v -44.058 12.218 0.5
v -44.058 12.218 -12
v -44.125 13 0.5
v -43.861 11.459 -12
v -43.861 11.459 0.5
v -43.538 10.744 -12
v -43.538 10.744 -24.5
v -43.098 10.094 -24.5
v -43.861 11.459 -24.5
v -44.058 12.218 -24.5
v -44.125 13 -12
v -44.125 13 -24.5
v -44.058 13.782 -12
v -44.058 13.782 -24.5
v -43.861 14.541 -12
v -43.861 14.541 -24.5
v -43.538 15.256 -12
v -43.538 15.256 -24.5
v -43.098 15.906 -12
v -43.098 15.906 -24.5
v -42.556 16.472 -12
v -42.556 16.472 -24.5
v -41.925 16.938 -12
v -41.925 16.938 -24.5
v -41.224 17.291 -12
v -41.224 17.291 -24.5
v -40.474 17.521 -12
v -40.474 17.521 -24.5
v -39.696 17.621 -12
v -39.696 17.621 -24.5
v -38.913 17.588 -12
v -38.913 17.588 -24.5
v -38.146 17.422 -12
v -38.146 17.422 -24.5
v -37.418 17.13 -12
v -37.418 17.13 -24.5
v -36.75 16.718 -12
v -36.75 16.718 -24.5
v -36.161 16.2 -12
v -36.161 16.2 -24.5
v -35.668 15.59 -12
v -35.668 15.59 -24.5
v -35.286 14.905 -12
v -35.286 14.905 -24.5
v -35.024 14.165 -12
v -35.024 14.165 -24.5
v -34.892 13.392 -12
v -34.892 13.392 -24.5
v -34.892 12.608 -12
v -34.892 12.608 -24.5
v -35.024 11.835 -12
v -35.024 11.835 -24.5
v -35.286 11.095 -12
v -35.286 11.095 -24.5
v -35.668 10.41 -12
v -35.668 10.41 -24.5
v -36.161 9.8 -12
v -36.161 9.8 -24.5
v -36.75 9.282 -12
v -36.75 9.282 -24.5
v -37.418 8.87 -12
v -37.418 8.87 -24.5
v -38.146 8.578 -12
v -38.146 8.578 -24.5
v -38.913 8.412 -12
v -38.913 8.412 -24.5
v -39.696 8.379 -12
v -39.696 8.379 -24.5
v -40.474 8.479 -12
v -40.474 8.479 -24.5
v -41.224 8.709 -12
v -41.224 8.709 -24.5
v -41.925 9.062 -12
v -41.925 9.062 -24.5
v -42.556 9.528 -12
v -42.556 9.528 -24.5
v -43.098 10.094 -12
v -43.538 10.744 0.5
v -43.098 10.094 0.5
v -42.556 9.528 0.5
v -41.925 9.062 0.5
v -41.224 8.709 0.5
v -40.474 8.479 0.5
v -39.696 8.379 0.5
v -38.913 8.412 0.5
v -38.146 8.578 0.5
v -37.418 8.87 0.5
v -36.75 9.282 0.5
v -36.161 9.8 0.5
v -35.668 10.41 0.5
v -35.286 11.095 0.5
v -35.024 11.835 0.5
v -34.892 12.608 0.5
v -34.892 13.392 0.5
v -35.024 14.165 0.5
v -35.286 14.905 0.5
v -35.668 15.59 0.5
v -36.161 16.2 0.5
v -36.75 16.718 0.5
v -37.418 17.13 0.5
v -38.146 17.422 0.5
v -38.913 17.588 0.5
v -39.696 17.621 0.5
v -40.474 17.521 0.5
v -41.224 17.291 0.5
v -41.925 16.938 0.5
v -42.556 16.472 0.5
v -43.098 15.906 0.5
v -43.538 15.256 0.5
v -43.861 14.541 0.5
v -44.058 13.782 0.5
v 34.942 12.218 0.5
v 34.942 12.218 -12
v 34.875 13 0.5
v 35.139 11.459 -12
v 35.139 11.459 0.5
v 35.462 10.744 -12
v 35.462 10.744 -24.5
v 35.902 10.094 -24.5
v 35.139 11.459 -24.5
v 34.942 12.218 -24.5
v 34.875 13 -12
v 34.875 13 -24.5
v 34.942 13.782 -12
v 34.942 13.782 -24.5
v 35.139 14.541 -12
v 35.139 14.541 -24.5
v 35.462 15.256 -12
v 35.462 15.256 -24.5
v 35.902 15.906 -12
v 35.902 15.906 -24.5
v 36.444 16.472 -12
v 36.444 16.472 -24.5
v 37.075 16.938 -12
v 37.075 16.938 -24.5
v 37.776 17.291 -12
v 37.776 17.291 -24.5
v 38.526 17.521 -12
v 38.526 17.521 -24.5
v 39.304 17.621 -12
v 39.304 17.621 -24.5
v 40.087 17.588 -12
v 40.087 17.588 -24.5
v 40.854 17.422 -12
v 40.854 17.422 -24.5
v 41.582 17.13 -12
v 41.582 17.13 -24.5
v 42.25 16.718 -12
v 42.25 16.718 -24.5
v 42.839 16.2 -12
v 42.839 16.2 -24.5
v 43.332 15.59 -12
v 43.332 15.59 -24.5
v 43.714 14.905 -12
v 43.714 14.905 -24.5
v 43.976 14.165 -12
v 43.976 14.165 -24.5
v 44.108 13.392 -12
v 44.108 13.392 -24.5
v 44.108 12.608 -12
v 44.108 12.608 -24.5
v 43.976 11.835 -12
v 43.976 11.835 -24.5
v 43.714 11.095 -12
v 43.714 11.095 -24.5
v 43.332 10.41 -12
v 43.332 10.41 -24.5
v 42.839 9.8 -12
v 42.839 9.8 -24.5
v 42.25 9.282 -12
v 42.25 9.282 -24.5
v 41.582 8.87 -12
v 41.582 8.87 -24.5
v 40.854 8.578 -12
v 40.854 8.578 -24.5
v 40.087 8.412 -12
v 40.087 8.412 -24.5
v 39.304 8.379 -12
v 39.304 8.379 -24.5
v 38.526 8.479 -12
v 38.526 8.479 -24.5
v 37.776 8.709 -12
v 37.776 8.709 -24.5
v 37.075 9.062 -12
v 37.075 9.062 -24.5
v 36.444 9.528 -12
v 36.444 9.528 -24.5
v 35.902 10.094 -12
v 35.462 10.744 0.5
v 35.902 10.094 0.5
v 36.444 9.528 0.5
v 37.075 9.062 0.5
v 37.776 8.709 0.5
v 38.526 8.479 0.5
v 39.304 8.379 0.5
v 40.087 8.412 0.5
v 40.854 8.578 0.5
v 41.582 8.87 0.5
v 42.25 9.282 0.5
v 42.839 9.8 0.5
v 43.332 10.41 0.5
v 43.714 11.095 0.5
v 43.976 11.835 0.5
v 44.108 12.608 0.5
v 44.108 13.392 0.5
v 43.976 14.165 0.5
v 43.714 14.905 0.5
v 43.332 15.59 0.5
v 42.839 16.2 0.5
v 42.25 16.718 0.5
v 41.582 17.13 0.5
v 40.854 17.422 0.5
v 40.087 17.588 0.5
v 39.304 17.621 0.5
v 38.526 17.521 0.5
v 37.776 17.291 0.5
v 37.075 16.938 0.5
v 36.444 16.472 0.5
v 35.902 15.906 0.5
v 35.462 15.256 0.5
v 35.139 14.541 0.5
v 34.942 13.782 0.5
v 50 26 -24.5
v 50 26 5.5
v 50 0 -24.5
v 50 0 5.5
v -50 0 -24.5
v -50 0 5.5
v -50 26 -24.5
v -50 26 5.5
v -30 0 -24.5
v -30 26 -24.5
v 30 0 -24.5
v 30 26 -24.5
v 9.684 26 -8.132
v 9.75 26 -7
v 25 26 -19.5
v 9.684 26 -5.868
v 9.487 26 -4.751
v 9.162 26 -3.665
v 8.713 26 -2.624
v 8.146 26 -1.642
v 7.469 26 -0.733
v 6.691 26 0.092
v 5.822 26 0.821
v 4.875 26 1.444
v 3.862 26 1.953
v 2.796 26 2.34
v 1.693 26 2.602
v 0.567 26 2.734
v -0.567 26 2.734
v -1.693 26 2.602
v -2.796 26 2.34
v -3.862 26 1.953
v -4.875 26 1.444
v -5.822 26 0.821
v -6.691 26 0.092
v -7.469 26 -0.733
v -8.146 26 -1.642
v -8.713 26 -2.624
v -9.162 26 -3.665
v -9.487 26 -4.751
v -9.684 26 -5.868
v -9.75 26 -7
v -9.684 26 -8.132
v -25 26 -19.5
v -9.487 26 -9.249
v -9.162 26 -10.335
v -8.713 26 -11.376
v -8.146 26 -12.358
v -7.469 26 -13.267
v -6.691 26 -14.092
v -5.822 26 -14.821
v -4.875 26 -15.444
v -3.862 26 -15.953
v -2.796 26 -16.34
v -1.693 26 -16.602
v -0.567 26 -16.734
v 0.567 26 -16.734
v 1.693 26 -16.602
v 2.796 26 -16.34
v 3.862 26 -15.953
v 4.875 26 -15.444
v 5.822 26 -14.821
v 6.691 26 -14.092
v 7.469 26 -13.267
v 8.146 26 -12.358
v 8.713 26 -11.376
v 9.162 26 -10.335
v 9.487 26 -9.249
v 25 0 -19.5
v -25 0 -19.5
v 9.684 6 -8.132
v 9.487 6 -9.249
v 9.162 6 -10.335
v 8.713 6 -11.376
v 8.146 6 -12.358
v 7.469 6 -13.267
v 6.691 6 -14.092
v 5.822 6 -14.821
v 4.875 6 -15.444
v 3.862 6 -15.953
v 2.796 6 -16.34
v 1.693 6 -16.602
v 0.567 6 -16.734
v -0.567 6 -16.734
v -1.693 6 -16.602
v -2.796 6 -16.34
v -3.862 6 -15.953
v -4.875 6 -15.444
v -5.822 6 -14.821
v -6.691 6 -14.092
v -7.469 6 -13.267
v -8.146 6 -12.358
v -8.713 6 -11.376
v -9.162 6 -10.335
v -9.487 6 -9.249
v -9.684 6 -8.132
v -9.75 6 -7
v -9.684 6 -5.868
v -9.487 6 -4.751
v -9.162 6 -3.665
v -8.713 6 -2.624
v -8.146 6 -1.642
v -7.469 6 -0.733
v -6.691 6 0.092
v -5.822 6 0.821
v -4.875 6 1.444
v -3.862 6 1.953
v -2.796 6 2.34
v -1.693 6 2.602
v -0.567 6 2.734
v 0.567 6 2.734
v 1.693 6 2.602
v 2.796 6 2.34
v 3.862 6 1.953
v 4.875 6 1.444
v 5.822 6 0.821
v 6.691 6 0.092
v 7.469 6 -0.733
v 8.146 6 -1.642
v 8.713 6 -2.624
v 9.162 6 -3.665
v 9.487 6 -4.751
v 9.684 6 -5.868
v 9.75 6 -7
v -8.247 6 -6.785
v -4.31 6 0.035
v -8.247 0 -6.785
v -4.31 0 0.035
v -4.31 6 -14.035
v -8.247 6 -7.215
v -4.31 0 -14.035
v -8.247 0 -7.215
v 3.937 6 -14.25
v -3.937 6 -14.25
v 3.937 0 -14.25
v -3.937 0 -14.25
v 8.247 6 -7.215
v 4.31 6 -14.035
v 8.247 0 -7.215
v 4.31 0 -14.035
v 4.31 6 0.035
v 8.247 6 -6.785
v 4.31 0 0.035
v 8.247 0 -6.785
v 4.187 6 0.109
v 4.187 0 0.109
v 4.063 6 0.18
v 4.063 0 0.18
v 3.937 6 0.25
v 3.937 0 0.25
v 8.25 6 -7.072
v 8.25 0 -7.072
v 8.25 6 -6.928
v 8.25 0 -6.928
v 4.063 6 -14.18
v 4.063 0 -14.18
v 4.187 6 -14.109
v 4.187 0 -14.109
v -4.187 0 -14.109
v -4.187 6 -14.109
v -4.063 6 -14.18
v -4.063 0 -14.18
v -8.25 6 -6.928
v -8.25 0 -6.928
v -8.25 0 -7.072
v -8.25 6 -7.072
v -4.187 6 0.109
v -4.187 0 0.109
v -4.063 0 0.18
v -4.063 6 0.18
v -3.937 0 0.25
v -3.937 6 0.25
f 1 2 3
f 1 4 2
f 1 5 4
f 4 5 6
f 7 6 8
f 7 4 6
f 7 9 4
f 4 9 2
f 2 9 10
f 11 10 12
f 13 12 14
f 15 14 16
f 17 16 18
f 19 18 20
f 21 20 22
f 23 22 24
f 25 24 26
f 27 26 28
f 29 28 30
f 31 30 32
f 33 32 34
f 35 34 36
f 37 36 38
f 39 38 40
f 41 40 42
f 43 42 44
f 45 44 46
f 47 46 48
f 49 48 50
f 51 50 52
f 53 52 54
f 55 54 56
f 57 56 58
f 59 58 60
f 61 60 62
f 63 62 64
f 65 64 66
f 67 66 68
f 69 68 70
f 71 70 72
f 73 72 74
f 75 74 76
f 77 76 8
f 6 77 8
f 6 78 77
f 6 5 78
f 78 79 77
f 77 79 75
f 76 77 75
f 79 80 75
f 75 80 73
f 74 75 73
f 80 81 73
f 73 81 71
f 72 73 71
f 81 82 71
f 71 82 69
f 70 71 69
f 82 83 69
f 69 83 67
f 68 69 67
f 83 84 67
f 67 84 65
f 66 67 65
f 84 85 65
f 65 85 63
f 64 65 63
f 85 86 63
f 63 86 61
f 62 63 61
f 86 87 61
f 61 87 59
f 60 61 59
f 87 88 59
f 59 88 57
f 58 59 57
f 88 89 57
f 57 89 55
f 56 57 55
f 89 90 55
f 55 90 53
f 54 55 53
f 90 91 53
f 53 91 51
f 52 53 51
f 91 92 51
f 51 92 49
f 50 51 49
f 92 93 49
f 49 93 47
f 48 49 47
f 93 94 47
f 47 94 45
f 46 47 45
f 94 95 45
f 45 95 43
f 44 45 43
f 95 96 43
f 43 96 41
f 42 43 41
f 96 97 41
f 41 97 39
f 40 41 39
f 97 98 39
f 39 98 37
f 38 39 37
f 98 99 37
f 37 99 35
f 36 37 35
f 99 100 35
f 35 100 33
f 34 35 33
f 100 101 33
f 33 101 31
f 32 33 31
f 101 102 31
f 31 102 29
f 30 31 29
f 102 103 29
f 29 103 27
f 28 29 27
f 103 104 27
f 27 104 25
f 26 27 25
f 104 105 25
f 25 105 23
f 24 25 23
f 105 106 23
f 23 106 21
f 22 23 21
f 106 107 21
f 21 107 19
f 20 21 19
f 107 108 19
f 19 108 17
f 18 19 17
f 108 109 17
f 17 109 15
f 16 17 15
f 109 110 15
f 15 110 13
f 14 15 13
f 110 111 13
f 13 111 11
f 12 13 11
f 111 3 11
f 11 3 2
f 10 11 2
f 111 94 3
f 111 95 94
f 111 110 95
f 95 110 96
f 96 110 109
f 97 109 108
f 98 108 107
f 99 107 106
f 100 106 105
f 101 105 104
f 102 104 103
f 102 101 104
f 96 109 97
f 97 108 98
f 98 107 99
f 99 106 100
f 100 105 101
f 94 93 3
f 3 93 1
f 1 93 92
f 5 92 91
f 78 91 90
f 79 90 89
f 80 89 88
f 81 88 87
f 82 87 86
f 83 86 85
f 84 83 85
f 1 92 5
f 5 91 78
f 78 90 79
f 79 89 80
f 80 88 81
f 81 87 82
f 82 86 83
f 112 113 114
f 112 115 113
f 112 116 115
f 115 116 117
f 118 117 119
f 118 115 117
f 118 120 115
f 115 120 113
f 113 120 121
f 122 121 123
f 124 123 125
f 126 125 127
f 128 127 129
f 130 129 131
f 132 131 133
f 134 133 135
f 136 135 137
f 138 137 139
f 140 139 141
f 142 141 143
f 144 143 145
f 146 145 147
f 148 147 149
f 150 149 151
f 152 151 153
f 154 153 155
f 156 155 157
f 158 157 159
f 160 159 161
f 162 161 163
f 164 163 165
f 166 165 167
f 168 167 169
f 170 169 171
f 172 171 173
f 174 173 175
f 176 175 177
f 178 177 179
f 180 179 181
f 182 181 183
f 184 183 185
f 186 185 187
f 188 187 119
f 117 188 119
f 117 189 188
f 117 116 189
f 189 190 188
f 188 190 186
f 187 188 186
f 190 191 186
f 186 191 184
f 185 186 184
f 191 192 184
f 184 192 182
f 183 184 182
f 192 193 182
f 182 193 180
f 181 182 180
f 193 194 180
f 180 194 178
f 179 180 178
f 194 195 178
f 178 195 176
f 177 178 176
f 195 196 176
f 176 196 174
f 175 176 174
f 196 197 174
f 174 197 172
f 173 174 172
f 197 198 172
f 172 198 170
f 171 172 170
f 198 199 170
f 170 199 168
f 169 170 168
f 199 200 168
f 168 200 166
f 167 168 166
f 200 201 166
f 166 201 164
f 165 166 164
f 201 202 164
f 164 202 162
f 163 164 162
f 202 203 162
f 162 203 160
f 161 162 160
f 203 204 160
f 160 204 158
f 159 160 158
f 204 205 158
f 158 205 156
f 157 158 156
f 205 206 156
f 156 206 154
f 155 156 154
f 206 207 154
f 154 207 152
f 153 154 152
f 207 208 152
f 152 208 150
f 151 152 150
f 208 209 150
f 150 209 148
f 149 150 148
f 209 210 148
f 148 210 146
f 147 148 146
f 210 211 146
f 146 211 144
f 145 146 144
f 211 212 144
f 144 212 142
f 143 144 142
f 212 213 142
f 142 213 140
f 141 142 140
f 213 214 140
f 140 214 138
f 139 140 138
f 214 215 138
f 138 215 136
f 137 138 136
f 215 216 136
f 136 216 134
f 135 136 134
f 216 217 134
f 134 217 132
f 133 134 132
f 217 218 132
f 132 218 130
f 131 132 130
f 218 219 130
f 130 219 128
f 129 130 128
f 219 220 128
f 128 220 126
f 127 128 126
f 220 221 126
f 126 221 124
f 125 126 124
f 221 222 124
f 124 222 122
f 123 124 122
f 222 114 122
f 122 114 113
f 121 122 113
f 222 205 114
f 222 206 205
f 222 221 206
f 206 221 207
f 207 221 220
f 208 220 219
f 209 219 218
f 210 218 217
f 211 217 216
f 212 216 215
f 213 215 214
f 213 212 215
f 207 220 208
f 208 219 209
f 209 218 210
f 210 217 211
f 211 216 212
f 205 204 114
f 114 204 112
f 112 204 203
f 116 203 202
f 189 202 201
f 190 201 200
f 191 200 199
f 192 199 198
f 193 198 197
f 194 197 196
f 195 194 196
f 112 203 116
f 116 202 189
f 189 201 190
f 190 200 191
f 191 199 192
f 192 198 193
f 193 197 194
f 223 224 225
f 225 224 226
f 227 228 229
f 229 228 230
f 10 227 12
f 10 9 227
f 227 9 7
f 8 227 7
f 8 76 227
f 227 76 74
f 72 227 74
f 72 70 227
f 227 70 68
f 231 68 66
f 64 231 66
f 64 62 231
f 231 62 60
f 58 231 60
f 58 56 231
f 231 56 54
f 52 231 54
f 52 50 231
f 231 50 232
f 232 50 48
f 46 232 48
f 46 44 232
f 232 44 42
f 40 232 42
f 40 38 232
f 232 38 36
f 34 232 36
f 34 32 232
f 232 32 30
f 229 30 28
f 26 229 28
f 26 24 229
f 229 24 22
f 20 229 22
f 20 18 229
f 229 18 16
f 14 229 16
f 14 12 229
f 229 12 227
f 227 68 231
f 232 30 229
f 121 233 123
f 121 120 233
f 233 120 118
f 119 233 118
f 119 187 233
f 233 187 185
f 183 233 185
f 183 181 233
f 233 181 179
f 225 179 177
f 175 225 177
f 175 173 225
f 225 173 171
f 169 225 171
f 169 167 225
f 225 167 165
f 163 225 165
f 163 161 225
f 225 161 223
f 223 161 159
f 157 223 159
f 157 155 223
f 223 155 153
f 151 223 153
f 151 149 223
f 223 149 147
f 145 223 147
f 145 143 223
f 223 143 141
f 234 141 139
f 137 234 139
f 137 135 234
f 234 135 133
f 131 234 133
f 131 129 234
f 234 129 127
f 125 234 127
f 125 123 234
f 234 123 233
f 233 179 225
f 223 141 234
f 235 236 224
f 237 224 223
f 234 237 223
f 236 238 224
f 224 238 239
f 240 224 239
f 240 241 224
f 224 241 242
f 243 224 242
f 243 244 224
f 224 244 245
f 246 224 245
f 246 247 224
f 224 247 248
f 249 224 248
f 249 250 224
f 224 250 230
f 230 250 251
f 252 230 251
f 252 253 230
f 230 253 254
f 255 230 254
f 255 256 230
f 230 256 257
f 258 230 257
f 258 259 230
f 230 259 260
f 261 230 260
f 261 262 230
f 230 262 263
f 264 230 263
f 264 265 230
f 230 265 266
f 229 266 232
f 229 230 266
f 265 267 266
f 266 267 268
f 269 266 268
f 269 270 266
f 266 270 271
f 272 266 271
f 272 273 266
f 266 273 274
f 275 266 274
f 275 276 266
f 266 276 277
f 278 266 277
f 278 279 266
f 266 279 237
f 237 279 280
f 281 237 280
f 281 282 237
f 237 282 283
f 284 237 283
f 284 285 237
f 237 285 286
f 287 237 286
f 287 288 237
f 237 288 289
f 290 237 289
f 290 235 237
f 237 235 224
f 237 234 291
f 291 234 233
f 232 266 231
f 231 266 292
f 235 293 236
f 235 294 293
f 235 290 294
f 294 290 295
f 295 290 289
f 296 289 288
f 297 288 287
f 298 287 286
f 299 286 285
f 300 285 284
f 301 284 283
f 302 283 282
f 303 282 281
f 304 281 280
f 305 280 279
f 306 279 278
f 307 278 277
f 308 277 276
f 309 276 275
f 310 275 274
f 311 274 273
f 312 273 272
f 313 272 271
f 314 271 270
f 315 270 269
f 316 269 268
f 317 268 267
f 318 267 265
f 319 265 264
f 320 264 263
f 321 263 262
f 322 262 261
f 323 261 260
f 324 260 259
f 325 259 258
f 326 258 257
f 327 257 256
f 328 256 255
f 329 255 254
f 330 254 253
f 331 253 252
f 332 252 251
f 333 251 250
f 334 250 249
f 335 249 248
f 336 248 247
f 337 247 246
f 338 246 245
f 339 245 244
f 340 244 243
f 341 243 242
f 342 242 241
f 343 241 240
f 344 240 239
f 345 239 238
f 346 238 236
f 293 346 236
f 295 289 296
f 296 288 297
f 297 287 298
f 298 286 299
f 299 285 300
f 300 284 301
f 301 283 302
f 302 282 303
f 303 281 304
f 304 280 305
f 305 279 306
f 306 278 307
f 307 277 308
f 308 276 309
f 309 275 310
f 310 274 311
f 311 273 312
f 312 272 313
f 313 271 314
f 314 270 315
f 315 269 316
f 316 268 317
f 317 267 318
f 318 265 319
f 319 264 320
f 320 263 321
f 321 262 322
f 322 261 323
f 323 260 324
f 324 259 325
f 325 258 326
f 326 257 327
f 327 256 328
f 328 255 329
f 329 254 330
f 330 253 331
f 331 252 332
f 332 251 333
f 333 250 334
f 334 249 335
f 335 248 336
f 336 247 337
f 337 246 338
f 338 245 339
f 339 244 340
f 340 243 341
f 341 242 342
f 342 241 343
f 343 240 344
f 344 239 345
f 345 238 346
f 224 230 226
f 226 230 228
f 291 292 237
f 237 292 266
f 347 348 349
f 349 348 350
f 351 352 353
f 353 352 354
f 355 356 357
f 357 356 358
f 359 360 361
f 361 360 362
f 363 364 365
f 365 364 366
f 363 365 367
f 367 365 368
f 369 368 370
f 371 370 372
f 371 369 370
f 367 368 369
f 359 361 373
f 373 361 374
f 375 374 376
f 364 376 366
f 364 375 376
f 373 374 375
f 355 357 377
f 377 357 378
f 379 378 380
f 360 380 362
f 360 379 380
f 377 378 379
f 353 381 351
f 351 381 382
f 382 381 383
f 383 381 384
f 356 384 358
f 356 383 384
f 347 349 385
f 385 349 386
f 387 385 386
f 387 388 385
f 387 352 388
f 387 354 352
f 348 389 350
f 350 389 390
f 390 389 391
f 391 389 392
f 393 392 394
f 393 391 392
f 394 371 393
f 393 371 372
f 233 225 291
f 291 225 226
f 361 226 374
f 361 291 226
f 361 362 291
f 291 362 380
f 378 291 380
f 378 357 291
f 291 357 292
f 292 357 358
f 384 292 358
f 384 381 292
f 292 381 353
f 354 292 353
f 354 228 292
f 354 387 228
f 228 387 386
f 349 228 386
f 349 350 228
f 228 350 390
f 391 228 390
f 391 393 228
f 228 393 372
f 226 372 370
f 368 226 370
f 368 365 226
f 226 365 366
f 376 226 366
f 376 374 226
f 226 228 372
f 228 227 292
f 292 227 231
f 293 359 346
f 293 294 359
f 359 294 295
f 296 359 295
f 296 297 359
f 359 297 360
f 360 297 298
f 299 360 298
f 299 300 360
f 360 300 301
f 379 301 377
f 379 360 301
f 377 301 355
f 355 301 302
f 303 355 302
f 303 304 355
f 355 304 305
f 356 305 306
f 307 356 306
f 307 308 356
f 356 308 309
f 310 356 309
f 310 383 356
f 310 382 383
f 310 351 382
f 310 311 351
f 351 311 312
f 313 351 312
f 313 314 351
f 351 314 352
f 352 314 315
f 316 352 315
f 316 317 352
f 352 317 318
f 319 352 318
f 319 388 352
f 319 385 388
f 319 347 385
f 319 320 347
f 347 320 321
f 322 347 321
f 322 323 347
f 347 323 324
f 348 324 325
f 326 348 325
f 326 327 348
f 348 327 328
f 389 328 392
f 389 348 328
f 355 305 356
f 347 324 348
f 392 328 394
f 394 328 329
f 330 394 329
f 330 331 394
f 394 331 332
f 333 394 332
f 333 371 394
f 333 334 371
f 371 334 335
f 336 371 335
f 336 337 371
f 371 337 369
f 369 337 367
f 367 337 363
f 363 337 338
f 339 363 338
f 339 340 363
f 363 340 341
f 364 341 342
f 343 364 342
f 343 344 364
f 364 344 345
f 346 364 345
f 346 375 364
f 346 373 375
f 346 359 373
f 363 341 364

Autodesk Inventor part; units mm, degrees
ref_plane "YZ Plane" through (0, 0, 0) normal (1, 0, 0) x (0, 1, 0)
ref_plane "XZ Plane" through (0, 0, 0) normal (0, 1, 0) x (-1, 0, 0)
ref_plane "XY Plane" through (0, 0, 0) normal (0, 0, 1) x (1, 0, 0)
sketch "Sketch1" plane through (0, 0, 0) normal (0, 1, 0) x (-1, 0, 0)
  line L0 (0, 0) -> (0, -14)
  circle A0 centre (0, -7) radius 8.25
  circle A1 centre (0, -7) radius 10.5
  dimension "d0" = 14
  dimension "d1" = 16.5
  dimension "d2" = 21
extrude "Extrusion1" add sketch "Sketch1" along normal blind 6
sketch "Sketch2" plane through (0, 6, -7) normal (0, 1, 0) x (1, 0, 0)
  line L0 (10.5, -10.5) -> (-10.5, -10.5)
  line L1 (-10.5, -10.5) -> (-10.5, 10.5)
  line L2 (-10.5, 10.5) -> (10.5, 10.5)
  line L3 (10.5, 10.5) -> (10.5, -10.5)
  line L4 (10.5, -10.5) -> (-10.5, 10.5) construction
  line L5 (-10.5, -10.5) -> (10.5, 10.5) construction
  circle A0 centre (0, 0) radius 10.5
  point P0 (0, -7)
extrude "Extrusion2" add sketch "Sketch2" against normal blind 6 contours L0 A0 L3 | L0 L1 A0 | A0 L2 L3 | L1 L2 A0
sketch "Sketch4" plane through (0, 6, 0) normal (0, 1, 0) x (1, 0, 0)
  circle A0 centre (0, 7) radius 8.25 projected
  line L0 (0, 7) -> (0, -0.25)
  line L1 (0, -0.25) -> (-3.937, -0.25)
  line L2 (3.937, -0.25) -> (-3.937, -0.25)
  point P0 (0, 0)
  dimension "d14" = 7.25
extrude "Extrusion4" add sketch "Sketch4" against normal blind 6 contours L1 L2 A0 picked at (1.9893, -0.4987)
pattern_circular "Circular Pattern2" count 6 over 360 about axis through (0, 0, -7) along (0, 1, 0) of "Extrusion4"
sketch "Sketch5" plane through (0, 6, 0) normal (0, 1, 0) x (1, 0, 0)
  line L0 (-4.3102, -0.0345) -> (-8.2472, 6.7845) projected
  line L1 (-6.2787, 3.375) -> (6.2787, 10.625)
  line L2 (4.3102, 14.0345) -> (8.2472, 7.2155) projected
  line L3 (8.2472, 6.7845) -> (4.3102, -0.0345) projected
  line L4 (6.2787, 3.375) -> (-6.2787, 10.625)
  line L5 (-4.3102, 14.0345) -> (-8.2472, 7.2155) projected
  line L6 (3.937, 14.25) -> (-3.937, 14.25) projected
  line L7 (0, 14.25) -> (0, -0.25)
  line L8 (3.937, -0.25) -> (-3.937, -0.25) projected
  circle A0 centre (0, 7) radius 9.75
  line L9 (12.5, 19.5) -> (-12.5, 19.5)
  line L10 (-12.5, 19.5) -> (-12.5, -5.5)
  line L11 (-12.5, -5.5) -> (12.5, -5.5)
  line L12 (12.5, -5.5) -> (12.5, 19.5)
  line L13 (12.5, 19.5) -> (-12.5, -5.5) construction
  line L14 (-12.5, 19.5) -> (12.5, -5.5) construction
  point P0 (0, 0)
  dimension "d20" = 19.5
  dimension "d21" = 25
  dimension "d22" = 25
extrude "Extrusion5" add sketch "Sketch5" along normal blind 20
sketch "Sketch6" plane through (0, 6, 0) normal (0, -1, 0) x (1, 0, 0)
  line L0 (-10.5, -17.5) -> (10.5, -17.5)
  line L1 (10.5, -17.5) -> (10.5, 3.5)
  line L2 (10.5, 3.5) -> (-10.5, 3.5)
  line L3 (-10.5, 3.5) -> (-10.5, -17.5)
  circle A0 centre (0, -7) radius 9.75 projected
  line L4 (-10.5, -17.5) -> (10.5, 3.5) construction
  line L5 (10.5, -17.5) -> (-10.5, 3.5) construction
  line L6 (-12.5, -19.5) -> (12.5, -19.5)
  line L7 (12.5, -19.5) -> (12.5, 5.5)
  line L8 (12.5, 5.5) -> (-12.5, 5.5)
  line L9 (-12.5, 5.5) -> (-12.5, -19.5)
  line L10 (-12.5, -19.5) -> (12.5, 5.5) construction
  line L11 (12.5, -19.5) -> (-12.5, 5.5) construction
  point P0 (0, 0)
extrude "Extrusion6" add sketch "Sketch6" along normal blind 6 contours L9 L8 L7 L6
sketch "Sketch8" plane through (-12.5, 26, 5.5) normal (0, 0, 1) x (1, 0, 0)
  line L0 (0, 0) -> (25, 0)
  line L1 (0, 0) -> (-17.5, 0)
  line L2 (25, 0) -> (42.5, 0)
  line L3 (0, 0) -> (-17.5, 0)
  line L4 (-17.5, 0) -> (-17.5, -26)
  line L5 (-17.5, -26) -> (0, -26)
  line L6 (0, -26) -> (0, 0)
  line L7 (25, 0) -> (42.5, 0)
  line L8 (42.5, 0) -> (42.5, -26)
  line L9 (42.5, -26) -> (25, -26)
  line L10 (25, -26) -> (25, 0)
  point P0 (12.5, -26)
  dimension "d27" = 17.5
  dimension "d28" = 17.5
extrude "Extrusion7" add sketch "Sketch8" against normal blind 25
sketch "Sketch9" plane through (-30, 0, 5.5) normal (0, 0, 1) x (1, 0, 0)
  line L0 (0, 26) -> (-15, 26)
  line L1 (-15, 26) -> (-15, 0)
  line L2 (-15, 0) -> (0, 0)
  line L3 (0, 0) -> (0, 26)
  line L4 (60, 26) -> (75, 26)
  line L5 (75, 26) -> (75, 0)
  line L6 (75, 0) -> (60, 0)
  line L7 (60, 0) -> (60, 26)
  point P0 (30, 0)
  dimension "d31" = 15
  dimension "d32" = 15
extrude "Extrusion8" add sketch "Sketch9" against normal blind 61.25
sketch "Sketch10" plane through (-45, 0, 5.5) normal (-1, 0, 0) x (0, 0, 1)
  line L0 (-61.25, 0) -> (-61.25, 26) projected
  line L1 (-61.25, 13) -> (-35, 13)
  circle A0 centre (-48.125, 13) radius 4.125
  point P0 (-5.5, 0)
  dimension "d35" = 26.25
  dimension "d36" = 8.25
extrude "Extrusion9" cut sketch "Sketch10" against normal through all
sketch "Sketch11" plane through (0, 26, 0) normal (0, 1, 0) x (1, 0, 0)
  line L0 (30, 19.5) -> (30, 24.5)
  line L1 (30, 19.5) -> (30, 55.75) projected
  line L2 (30, 19.5) -> (25, 19.5)
  line L3 (25, 19.5) -> (30, 24.5)
  line L4 (-30, 19.5) -> (-30, 24.5)
  line L5 (-30, 19.5) -> (-30, 55.75) projected
  line L6 (-30, 19.5) -> (-25, 19.5)
  line L7 (30, 19.5) -> (-30, 19.5) projected
  line L8 (-25, 19.5) -> (-30, 24.5)
  point P0 (0, 0)
  dimension "d39" = 5
  dimension "d40" = 5
  dimension "d41" = 5
  dimension "d42" = 5
extrude "Extrusion10" add sketch "Sketch11" against normal blind 26
sketch "Sketch12" plane through (0, 26, 0) normal (0, 1, 0) x (1, 0, 0)
  line L0 (-45, -5.5) -> (-45, 55.75) projected
  line L1 (45, -5.5) -> (-45, -5.5)
  line L2 (-45, -5.5) -> (-45, 24.5)
  line L3 (-45, 24.5) -> (45, 24.5)
  line L4 (45, 24.5) -> (45, -5.5)
  point P0 (0, 0)
sketch "Sketch13" plane through (0, 26, 0) normal (0, 1, 0) x (1, 0, 0)
  line L0 (45, -5.5) -> (45, 55.75) projected
  line L1 (45, 24.5) -> (-45, 24.5)
  line L2 (-45, 24.5) -> (-45, 55.75)
  line L3 (-45, 55.75) -> (45, 55.75)
  line L4 (45, 55.75) -> (45, 24.5)
  point P0 (0, 0)
extrude "Extrusion11" cut sketch "Sketch13" against normal through all
sketch "Sketch15" plane through (-45, 0, 5.5) normal (-1, 0, 0) x (0, 0, 1)
  line L0 (0, 0) -> (-30, 0)
  line L1 (-30, 0) -> (-30, 26)
  line L2 (-30, 26) -> (0, 26)
  line L3 (0, 26) -> (0, 0)
  point P0 (-5.5, 0)
extrude "Extrusion13" add sketch "Sketch15" along normal blind 5
sketch "Sketch16" plane through (45, 0, 5.5) normal (1, 0, 0) x (0, 0, -1)
  line L0 (30, 26) -> (0, 26)
  line L1 (0, 26) -> (0, 0)
  line L2 (0, 0) -> (30, 0)
  line L3 (30, 0) -> (30, 26)
  point P0 (5.5, 0)
extrude "Extrusion14" add sketch "Sketch16" along normal blind 5
sketch "Sketch17" plane through (-30, 0, -24.5) normal (0, 0, -1) x (-1, 0, 0)
  line L0 (20, 26) -> (20, 0) projected
  line L1 (20, 13) -> (15, 13)
  line L2 (0, 26) -> (0, 0) projected
  circle A0 centre (9.5, 13) radius 4.625
  line L3 (-80, 0) -> (-80, 26) projected
  line L4 (-80, 13) -> (-75, 13)
  line L5 (-60, 0) -> (-60, 26) projected
  line L6 (-67.5, 13) -> (-69.5, 13)
  circle A1 centre (-69.5, 13) radius 4.625
  point P0 (-30, 0)
  dimension "d55" = 5
  dimension "d58" = 9.25
  dimension "d59" = 5
  dimension "d61" = 2
  dimension "d62" = 9.25
extrude "Extrusion15" cut sketch "Sketch17" against normal blind 25
sketch "Sketch18" plane through (0, 26, 0) normal (0, 1, 0) x (1, 0, 0)
  point P0 (0, 0)
sketch "Sketch19" plane through (0, 26, 0) normal (0, 1, 0) x (1, 0, 0)
  point P0 (0, 0)
properties part number "FretterMountTop"
